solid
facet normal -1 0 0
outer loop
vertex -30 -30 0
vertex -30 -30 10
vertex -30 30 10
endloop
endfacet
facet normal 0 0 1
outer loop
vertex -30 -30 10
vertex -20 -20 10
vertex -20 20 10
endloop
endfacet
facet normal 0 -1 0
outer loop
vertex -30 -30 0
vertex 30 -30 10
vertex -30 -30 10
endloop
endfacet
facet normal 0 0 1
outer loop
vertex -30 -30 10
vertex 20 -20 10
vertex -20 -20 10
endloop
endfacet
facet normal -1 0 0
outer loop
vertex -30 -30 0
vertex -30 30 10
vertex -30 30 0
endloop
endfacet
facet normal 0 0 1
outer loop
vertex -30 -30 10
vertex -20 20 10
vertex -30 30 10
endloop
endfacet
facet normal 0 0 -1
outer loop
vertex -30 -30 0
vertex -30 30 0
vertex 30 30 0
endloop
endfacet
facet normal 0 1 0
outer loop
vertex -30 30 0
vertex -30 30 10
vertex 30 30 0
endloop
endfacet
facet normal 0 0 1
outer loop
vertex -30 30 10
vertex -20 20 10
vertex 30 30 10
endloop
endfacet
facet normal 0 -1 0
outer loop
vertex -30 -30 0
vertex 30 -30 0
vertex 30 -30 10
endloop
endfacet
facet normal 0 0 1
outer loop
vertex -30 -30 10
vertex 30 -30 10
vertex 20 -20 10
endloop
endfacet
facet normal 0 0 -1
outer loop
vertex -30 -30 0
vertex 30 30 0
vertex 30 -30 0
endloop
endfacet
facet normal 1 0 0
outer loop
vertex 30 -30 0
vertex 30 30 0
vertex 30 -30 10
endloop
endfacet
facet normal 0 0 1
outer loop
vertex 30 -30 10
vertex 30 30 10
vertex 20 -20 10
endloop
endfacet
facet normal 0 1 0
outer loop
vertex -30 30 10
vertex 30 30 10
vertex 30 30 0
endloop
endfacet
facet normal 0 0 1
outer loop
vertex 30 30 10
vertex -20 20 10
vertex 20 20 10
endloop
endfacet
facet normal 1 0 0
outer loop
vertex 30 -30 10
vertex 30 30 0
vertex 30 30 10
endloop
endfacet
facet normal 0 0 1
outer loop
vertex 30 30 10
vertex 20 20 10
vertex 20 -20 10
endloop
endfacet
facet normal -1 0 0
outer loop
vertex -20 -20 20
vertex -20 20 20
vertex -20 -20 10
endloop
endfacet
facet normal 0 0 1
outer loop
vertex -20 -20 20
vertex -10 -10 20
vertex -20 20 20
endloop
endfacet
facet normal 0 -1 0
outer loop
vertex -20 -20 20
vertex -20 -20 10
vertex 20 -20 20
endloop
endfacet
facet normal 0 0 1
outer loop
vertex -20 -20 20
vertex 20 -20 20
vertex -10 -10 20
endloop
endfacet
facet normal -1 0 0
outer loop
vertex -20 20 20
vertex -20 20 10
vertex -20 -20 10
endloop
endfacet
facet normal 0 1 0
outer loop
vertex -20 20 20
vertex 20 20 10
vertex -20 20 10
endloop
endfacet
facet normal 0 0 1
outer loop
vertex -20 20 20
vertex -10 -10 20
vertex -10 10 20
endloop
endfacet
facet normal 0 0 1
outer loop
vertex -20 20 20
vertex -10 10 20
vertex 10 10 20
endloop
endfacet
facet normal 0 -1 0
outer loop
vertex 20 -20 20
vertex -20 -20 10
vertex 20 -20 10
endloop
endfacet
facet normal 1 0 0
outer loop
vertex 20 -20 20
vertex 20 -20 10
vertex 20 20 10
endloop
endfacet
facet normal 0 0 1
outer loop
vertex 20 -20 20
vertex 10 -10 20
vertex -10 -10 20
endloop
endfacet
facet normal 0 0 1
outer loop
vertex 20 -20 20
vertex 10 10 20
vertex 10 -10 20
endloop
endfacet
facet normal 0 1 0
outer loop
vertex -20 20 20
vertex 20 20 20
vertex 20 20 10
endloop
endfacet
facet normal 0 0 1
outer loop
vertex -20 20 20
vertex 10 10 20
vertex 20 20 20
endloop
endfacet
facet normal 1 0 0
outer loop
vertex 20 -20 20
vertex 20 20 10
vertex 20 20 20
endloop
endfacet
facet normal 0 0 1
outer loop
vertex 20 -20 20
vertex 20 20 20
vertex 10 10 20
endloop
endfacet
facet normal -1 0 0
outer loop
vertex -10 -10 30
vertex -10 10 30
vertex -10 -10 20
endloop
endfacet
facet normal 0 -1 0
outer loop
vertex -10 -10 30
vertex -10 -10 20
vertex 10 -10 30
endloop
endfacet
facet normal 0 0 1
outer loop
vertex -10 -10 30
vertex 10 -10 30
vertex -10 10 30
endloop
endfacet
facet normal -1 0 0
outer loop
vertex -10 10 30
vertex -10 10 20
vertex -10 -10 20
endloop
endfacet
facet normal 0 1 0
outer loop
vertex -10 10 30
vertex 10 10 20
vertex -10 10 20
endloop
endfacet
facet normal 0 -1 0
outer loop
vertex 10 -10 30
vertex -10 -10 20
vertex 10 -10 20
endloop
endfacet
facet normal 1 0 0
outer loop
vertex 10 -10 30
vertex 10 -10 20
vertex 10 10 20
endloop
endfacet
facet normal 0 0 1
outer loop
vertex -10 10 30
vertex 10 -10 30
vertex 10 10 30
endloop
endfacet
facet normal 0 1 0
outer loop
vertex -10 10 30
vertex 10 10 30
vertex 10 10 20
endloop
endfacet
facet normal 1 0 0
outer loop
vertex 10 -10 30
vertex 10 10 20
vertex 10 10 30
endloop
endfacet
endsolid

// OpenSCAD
// 3段の階段状ピラミッド（中心揃え）

module plate(size_xy, h, center=true) {
    cube([size_xy, size_xy, h], center=center);
}

bottom_size = 60;
mid_size    = 40;
top_size    = 20;

bottom_h = 10;
mid_h    = 10;
top_h    = 10;

union() {
    // 底板：底面が z=0
    translate([0, 0, bottom_h/2])
        plate(bottom_size, bottom_h, center=true);

    // 中板：中板の底面が底板の上面（z=10）
    translate([0, 0, bottom_h + mid_h/2])
        plate(mid_size, mid_h, center=true);

    // 上板：上板の底面が中板の上面（z=20）
    translate([0, 0, bottom_h + mid_h + top_h/2])
        plate(top_size, top_h, center=true);
}
